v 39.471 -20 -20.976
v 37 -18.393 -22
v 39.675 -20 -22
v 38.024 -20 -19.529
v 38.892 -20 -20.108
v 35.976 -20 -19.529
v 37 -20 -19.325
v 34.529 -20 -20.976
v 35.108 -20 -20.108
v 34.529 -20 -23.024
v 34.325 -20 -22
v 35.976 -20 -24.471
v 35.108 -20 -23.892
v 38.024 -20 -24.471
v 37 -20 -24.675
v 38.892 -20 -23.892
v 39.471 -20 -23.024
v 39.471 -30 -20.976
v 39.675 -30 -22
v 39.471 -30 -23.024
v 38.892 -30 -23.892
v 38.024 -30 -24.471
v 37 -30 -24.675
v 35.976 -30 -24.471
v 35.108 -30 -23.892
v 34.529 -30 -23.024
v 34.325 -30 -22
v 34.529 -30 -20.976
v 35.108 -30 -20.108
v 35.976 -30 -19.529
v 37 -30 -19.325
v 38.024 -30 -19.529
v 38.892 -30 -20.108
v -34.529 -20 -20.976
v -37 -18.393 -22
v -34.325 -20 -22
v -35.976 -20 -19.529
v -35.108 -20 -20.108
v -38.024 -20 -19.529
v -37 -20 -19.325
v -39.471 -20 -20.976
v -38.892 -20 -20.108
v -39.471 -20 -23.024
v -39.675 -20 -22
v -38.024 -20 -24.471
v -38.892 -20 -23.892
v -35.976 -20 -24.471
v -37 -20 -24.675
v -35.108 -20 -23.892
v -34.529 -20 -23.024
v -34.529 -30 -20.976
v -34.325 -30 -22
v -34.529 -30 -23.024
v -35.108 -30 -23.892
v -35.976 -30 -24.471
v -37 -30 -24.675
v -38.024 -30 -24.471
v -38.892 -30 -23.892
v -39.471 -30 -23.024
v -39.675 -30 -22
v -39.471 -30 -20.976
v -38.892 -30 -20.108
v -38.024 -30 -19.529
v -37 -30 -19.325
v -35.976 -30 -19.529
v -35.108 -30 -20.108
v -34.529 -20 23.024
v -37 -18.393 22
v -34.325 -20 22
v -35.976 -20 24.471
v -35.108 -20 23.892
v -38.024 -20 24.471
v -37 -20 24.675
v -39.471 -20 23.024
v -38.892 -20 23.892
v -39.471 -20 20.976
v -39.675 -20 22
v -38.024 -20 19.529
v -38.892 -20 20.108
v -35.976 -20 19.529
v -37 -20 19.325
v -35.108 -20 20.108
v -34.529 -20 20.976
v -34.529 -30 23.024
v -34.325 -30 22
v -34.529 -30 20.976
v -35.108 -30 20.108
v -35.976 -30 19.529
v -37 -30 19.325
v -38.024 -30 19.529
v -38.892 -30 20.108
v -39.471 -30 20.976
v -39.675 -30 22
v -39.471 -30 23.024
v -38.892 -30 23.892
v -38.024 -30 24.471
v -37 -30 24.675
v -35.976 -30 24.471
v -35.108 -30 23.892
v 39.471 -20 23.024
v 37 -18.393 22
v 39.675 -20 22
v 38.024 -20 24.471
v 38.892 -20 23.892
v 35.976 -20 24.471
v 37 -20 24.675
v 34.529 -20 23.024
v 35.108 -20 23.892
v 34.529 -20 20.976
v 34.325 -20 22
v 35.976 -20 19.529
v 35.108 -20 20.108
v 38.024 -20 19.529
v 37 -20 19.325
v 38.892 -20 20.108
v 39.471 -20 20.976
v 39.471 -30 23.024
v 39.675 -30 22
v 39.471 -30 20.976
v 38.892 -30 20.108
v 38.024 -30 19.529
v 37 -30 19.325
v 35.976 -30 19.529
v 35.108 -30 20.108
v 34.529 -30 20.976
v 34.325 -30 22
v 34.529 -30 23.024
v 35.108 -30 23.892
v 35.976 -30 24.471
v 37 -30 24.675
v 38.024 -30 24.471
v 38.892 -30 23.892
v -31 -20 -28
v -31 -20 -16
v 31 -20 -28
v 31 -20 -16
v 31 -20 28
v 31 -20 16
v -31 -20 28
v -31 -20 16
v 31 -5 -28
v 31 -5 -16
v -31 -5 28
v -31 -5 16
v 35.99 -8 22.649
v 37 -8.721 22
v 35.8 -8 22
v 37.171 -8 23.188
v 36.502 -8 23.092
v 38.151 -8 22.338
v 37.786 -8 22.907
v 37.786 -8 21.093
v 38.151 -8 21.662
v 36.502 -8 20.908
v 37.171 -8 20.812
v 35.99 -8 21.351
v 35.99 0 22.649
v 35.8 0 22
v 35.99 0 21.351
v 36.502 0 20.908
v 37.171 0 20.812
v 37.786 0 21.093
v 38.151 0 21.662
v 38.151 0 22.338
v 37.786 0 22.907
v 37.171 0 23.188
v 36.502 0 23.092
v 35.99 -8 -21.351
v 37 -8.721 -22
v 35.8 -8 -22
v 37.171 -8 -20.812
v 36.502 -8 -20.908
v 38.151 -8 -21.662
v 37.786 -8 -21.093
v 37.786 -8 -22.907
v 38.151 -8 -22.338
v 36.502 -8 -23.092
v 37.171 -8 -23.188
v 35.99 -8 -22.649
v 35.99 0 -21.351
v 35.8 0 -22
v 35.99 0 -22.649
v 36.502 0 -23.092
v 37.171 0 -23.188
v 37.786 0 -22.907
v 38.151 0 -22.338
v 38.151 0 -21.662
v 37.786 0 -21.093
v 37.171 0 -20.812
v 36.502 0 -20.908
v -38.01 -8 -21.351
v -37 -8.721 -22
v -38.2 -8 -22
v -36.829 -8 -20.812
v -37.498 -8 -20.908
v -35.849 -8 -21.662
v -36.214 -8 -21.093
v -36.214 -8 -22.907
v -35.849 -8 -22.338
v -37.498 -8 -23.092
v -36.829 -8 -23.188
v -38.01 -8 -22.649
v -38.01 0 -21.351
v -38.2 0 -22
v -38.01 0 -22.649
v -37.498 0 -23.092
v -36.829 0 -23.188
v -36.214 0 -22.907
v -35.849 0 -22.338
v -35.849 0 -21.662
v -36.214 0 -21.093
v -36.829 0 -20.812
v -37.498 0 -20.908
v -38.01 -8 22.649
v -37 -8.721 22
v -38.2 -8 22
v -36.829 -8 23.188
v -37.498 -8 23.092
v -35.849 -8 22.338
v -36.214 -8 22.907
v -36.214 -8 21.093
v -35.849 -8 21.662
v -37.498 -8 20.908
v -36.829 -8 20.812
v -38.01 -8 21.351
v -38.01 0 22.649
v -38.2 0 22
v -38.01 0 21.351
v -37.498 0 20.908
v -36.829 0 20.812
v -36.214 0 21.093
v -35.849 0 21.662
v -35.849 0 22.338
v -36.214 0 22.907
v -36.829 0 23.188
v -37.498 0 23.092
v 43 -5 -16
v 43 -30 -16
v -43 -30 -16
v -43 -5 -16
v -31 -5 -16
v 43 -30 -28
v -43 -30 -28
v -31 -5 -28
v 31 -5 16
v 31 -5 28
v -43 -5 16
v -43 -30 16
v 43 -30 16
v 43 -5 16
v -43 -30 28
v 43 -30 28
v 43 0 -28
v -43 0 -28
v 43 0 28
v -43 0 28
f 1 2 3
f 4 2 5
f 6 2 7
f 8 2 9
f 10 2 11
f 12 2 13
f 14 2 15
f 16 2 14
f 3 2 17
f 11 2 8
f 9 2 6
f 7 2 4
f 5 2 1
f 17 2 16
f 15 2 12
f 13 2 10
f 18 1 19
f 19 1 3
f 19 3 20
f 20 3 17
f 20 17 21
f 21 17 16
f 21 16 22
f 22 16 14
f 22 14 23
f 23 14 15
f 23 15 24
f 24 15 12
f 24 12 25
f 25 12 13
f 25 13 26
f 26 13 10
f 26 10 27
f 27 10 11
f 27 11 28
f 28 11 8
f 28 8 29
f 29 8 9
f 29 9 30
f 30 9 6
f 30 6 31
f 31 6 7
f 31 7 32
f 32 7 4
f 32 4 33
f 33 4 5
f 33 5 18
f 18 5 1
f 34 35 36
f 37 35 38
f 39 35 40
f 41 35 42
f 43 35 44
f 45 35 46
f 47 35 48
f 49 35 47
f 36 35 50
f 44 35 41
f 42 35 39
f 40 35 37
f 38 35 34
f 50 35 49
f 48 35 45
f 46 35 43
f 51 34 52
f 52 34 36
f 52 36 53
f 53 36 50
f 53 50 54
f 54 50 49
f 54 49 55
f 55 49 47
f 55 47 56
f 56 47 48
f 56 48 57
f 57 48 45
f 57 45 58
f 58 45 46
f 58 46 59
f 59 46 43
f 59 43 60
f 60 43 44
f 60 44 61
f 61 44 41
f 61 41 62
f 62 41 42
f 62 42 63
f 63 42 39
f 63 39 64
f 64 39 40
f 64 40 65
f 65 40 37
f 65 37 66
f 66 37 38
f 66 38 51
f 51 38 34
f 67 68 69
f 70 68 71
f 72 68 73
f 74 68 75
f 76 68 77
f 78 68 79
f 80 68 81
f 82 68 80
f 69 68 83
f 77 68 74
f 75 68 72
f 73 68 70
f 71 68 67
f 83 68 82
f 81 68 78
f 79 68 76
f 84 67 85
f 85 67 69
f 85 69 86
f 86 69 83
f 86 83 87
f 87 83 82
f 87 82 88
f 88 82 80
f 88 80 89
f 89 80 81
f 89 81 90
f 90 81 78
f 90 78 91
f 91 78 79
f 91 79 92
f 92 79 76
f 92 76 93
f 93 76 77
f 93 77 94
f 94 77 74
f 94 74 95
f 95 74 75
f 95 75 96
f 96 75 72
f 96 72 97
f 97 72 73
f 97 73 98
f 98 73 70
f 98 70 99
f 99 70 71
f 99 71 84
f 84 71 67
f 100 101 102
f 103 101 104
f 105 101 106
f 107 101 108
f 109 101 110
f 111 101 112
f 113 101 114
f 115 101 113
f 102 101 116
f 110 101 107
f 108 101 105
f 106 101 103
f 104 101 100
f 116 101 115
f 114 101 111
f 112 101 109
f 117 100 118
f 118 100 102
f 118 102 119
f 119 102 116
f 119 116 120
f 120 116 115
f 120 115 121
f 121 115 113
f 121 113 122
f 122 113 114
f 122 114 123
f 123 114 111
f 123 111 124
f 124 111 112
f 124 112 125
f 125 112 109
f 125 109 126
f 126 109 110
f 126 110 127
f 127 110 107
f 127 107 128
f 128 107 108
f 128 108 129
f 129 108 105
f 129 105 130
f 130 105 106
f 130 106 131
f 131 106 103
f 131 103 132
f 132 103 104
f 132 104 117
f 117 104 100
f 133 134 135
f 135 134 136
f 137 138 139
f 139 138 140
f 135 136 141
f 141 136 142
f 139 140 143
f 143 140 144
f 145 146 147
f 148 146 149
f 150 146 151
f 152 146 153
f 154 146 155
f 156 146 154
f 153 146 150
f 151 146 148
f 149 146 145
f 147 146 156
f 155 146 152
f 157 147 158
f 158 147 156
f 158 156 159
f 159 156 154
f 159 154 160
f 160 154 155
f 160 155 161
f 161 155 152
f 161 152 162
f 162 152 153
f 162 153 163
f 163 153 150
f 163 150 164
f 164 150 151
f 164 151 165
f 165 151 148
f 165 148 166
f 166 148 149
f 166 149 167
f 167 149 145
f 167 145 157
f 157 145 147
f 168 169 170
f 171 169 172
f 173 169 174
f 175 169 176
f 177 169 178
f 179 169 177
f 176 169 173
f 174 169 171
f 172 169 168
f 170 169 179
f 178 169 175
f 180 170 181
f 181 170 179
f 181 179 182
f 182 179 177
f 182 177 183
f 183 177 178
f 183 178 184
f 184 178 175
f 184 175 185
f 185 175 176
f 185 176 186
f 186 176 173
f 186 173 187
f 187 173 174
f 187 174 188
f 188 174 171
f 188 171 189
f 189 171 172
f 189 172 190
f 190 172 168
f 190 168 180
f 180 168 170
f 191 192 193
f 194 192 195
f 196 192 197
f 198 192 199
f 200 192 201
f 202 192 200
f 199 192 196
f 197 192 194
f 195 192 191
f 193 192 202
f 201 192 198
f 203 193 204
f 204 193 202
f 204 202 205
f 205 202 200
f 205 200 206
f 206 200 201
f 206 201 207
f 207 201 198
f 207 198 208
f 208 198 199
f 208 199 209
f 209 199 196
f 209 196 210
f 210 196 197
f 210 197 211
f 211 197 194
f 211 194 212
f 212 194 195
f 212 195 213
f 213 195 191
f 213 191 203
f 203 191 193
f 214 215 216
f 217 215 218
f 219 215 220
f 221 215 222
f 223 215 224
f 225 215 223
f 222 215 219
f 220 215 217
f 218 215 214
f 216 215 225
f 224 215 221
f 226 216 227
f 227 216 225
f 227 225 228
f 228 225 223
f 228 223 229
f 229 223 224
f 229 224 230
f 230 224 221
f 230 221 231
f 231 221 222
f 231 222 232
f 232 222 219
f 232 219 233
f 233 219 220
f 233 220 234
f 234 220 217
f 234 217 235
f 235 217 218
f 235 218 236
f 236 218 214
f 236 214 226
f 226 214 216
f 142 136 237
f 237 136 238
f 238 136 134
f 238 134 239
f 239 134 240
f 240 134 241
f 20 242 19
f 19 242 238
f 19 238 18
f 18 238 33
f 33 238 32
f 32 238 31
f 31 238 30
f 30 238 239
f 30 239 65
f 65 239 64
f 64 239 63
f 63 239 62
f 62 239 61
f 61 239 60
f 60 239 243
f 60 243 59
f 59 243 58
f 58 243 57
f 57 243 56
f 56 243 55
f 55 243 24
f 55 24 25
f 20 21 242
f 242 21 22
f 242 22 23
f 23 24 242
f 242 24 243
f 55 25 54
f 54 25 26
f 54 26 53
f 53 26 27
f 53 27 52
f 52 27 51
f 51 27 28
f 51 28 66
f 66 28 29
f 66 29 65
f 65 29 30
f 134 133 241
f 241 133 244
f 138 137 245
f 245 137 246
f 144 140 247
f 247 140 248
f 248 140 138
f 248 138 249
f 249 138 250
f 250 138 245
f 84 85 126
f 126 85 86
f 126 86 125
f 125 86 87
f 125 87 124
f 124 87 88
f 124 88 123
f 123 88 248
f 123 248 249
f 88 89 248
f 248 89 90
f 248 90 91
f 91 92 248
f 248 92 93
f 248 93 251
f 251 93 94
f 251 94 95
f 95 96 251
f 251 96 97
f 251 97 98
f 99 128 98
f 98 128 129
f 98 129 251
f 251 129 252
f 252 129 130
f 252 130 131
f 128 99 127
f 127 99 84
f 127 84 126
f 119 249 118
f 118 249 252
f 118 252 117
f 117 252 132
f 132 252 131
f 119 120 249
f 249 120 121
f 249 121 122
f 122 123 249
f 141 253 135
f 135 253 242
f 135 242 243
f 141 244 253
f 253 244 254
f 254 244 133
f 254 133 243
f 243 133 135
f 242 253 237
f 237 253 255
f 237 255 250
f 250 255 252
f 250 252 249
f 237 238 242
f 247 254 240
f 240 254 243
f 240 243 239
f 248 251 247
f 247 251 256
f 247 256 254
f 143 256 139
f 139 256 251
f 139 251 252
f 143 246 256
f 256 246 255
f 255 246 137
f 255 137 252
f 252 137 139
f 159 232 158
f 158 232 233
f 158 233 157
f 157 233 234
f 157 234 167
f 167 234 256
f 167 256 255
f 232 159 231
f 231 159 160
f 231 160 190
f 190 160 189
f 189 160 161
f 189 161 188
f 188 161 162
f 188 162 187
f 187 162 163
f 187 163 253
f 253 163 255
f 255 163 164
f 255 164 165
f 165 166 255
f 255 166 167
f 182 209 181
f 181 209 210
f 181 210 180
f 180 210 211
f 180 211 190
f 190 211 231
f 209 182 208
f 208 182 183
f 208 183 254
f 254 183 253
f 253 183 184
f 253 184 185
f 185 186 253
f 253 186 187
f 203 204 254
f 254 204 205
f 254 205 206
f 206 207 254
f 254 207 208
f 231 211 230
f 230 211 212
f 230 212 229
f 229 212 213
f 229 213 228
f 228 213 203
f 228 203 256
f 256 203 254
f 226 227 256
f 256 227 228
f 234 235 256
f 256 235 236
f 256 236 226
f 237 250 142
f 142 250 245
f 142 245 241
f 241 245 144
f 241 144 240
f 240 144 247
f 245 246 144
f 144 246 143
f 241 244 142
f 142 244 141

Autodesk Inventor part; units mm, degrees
ref_plane "YZ Plane" through (0, 0, 0) normal (1, 0, 0) x (0, 1, 0)
ref_plane "XZ Plane" through (0, 0, 0) normal (0, 1, 0) x (-1, 0, 0)
ref_plane "XY Plane" through (0, 0, 0) normal (0, 0, 1) x (1, 0, 0)
sketch "Sketch1" plane through (0, 0, 0) normal (0, 1, 0) x (-1, 0, 0)
  line L0 (-37, 22) -> (37, 22) construction
  line L1 (37, 22) -> (37, -22) construction
  line L2 (37, -22) -> (-37, -22) construction
  line L3 (-37, -22) -> (-37, 22) construction
  line L4 (-37, 22) -> (37, -22) construction
  line L5 (37, 22) -> (-37, -22) construction
  line L6 (-47, 32) -> (47, 32) construction
  line L7 (47, 32) -> (47, -32) construction
  line L8 (47, -32) -> (-47, -32) construction
  line L9 (-47, -32) -> (-47, 32) construction
  line L10 (-47, 32) -> (47, -32) construction
  line L11 (47, 32) -> (-47, -32) construction
  line L12 (31, 16) -> (43, 16)
  line L13 (43, 16) -> (43, 28)
  line L14 (43, 28) -> (31, 28)
  line L15 (31, 28) -> (31, 16)
  line L16 (31, 16) -> (43, 28) construction
  line L17 (43, 16) -> (31, 28) construction
  line L18 (47, 0) -> (-47, 0) construction
  line L19 (0, 32) -> (0, -32) construction
  line L20 (37, -22) -> (-37, 22) construction
  line L21 (47, -32) -> (-47, 32) construction
  line L22 (31, -16) -> (43, -16)
  line L23 (43, -16) -> (43, -28)
  line L24 (43, -28) -> (31, -28)
  line L25 (31, -28) -> (31, -16)
  line L26 (31, -16) -> (43, -28) construction
  line L27 (43, -16) -> (31, -28) construction
  line L28 (-31, 16) -> (-43, 16)
  line L29 (-43, 16) -> (-43, 28)
  line L30 (-43, 28) -> (-31, 28)
  line L31 (-31, 28) -> (-31, 16)
  line L32 (-31, -16) -> (-43, -16)
  line L33 (-31, -28) -> (-31, -16)
  line L34 (-43, -28) -> (-31, -28)
  line L35 (-43, -16) -> (-43, -28)
  line L36 (43, 28) -> (-43, 28)
  line L37 (-43, 28) -> (-43, -28)
  line L38 (-43, -28) -> (43, -28)
  line L39 (43, -28) -> (43, 28)
  point P0 (0, 0)
  dimension "d0" = 74
  dimension "d1" = 44
  dimension "d2" = 10
  dimension "d3" = 10
  dimension "d4" = 12
  dimension "d5" = 12
extrude "Extrusion1" add sketch "Sketch1" against normal blind 5
extrude "Extrusion2" add sketch "Sketch1" against normal blind 30 contours L15 L14 L13 L12 | L23 L24 L25 L22 | L31 L28 L29 L30 | L34 L35 L32 L33
hole "Hole2" at (-37, 0, 22) at (-37, 0, -22) at (37, 0, -22) at (37, 0, 22) direction (0, -1, 0) diameter 2.4 depth 8 tip angle 118 clearance for "Flat Head Machine Screw" size "M2" standard "Ansi Metric M Profile"
sketch "Sketch4" plane through (0, -30, 0) normal (0, -1, 0) x (1, 0, 0)
  line L0 (31, 28) -> (-31, 28) projected
  line L1 (-43, 16) -> (-31, 16) projected
  line L2 (31, 28) -> (-31, 28)
  line L3 (-31, 28) -> (-31, 16)
  line L4 (-31, 16) -> (31, 16)
  line L5 (31, 16) -> (31, 28)
  line L6 (43, -28) -> (-43, -28) projected
  line L7 (-43, -16) -> (-31, -16) projected
  line L8 (31, -28) -> (-31, -28)
  line L9 (-31, -28) -> (-31, -16)
  line L10 (-31, -16) -> (31, -16)
  line L11 (31, -16) -> (31, -28)
  point P0 (0, 0)
extrude "Extrusion3" add sketch "Sketch4" against normal blind 10
sketch "Sketch5" plane through (0, -30, 0) normal (0, -1, 0) x (1, 0, 0)
  circle A0 centre (37, 22) radius 1.2 projected
  circle A1 centre (-37, 22) radius 1.2 projected
  circle A2 centre (-37, -22) radius 1.2 projected
  circle A3 centre (37, -22) radius 1.2 projected
  point P0 (0, 0)
hole "Hole3" at (37, -30, 22) at (-37, -30, 22) at (-37, -30, -22) at (37, -30, -22) direction (0, 1, 0) diameter 5.35 depth 10 tip angle 118
properties part number "PCB_Housing_01"
